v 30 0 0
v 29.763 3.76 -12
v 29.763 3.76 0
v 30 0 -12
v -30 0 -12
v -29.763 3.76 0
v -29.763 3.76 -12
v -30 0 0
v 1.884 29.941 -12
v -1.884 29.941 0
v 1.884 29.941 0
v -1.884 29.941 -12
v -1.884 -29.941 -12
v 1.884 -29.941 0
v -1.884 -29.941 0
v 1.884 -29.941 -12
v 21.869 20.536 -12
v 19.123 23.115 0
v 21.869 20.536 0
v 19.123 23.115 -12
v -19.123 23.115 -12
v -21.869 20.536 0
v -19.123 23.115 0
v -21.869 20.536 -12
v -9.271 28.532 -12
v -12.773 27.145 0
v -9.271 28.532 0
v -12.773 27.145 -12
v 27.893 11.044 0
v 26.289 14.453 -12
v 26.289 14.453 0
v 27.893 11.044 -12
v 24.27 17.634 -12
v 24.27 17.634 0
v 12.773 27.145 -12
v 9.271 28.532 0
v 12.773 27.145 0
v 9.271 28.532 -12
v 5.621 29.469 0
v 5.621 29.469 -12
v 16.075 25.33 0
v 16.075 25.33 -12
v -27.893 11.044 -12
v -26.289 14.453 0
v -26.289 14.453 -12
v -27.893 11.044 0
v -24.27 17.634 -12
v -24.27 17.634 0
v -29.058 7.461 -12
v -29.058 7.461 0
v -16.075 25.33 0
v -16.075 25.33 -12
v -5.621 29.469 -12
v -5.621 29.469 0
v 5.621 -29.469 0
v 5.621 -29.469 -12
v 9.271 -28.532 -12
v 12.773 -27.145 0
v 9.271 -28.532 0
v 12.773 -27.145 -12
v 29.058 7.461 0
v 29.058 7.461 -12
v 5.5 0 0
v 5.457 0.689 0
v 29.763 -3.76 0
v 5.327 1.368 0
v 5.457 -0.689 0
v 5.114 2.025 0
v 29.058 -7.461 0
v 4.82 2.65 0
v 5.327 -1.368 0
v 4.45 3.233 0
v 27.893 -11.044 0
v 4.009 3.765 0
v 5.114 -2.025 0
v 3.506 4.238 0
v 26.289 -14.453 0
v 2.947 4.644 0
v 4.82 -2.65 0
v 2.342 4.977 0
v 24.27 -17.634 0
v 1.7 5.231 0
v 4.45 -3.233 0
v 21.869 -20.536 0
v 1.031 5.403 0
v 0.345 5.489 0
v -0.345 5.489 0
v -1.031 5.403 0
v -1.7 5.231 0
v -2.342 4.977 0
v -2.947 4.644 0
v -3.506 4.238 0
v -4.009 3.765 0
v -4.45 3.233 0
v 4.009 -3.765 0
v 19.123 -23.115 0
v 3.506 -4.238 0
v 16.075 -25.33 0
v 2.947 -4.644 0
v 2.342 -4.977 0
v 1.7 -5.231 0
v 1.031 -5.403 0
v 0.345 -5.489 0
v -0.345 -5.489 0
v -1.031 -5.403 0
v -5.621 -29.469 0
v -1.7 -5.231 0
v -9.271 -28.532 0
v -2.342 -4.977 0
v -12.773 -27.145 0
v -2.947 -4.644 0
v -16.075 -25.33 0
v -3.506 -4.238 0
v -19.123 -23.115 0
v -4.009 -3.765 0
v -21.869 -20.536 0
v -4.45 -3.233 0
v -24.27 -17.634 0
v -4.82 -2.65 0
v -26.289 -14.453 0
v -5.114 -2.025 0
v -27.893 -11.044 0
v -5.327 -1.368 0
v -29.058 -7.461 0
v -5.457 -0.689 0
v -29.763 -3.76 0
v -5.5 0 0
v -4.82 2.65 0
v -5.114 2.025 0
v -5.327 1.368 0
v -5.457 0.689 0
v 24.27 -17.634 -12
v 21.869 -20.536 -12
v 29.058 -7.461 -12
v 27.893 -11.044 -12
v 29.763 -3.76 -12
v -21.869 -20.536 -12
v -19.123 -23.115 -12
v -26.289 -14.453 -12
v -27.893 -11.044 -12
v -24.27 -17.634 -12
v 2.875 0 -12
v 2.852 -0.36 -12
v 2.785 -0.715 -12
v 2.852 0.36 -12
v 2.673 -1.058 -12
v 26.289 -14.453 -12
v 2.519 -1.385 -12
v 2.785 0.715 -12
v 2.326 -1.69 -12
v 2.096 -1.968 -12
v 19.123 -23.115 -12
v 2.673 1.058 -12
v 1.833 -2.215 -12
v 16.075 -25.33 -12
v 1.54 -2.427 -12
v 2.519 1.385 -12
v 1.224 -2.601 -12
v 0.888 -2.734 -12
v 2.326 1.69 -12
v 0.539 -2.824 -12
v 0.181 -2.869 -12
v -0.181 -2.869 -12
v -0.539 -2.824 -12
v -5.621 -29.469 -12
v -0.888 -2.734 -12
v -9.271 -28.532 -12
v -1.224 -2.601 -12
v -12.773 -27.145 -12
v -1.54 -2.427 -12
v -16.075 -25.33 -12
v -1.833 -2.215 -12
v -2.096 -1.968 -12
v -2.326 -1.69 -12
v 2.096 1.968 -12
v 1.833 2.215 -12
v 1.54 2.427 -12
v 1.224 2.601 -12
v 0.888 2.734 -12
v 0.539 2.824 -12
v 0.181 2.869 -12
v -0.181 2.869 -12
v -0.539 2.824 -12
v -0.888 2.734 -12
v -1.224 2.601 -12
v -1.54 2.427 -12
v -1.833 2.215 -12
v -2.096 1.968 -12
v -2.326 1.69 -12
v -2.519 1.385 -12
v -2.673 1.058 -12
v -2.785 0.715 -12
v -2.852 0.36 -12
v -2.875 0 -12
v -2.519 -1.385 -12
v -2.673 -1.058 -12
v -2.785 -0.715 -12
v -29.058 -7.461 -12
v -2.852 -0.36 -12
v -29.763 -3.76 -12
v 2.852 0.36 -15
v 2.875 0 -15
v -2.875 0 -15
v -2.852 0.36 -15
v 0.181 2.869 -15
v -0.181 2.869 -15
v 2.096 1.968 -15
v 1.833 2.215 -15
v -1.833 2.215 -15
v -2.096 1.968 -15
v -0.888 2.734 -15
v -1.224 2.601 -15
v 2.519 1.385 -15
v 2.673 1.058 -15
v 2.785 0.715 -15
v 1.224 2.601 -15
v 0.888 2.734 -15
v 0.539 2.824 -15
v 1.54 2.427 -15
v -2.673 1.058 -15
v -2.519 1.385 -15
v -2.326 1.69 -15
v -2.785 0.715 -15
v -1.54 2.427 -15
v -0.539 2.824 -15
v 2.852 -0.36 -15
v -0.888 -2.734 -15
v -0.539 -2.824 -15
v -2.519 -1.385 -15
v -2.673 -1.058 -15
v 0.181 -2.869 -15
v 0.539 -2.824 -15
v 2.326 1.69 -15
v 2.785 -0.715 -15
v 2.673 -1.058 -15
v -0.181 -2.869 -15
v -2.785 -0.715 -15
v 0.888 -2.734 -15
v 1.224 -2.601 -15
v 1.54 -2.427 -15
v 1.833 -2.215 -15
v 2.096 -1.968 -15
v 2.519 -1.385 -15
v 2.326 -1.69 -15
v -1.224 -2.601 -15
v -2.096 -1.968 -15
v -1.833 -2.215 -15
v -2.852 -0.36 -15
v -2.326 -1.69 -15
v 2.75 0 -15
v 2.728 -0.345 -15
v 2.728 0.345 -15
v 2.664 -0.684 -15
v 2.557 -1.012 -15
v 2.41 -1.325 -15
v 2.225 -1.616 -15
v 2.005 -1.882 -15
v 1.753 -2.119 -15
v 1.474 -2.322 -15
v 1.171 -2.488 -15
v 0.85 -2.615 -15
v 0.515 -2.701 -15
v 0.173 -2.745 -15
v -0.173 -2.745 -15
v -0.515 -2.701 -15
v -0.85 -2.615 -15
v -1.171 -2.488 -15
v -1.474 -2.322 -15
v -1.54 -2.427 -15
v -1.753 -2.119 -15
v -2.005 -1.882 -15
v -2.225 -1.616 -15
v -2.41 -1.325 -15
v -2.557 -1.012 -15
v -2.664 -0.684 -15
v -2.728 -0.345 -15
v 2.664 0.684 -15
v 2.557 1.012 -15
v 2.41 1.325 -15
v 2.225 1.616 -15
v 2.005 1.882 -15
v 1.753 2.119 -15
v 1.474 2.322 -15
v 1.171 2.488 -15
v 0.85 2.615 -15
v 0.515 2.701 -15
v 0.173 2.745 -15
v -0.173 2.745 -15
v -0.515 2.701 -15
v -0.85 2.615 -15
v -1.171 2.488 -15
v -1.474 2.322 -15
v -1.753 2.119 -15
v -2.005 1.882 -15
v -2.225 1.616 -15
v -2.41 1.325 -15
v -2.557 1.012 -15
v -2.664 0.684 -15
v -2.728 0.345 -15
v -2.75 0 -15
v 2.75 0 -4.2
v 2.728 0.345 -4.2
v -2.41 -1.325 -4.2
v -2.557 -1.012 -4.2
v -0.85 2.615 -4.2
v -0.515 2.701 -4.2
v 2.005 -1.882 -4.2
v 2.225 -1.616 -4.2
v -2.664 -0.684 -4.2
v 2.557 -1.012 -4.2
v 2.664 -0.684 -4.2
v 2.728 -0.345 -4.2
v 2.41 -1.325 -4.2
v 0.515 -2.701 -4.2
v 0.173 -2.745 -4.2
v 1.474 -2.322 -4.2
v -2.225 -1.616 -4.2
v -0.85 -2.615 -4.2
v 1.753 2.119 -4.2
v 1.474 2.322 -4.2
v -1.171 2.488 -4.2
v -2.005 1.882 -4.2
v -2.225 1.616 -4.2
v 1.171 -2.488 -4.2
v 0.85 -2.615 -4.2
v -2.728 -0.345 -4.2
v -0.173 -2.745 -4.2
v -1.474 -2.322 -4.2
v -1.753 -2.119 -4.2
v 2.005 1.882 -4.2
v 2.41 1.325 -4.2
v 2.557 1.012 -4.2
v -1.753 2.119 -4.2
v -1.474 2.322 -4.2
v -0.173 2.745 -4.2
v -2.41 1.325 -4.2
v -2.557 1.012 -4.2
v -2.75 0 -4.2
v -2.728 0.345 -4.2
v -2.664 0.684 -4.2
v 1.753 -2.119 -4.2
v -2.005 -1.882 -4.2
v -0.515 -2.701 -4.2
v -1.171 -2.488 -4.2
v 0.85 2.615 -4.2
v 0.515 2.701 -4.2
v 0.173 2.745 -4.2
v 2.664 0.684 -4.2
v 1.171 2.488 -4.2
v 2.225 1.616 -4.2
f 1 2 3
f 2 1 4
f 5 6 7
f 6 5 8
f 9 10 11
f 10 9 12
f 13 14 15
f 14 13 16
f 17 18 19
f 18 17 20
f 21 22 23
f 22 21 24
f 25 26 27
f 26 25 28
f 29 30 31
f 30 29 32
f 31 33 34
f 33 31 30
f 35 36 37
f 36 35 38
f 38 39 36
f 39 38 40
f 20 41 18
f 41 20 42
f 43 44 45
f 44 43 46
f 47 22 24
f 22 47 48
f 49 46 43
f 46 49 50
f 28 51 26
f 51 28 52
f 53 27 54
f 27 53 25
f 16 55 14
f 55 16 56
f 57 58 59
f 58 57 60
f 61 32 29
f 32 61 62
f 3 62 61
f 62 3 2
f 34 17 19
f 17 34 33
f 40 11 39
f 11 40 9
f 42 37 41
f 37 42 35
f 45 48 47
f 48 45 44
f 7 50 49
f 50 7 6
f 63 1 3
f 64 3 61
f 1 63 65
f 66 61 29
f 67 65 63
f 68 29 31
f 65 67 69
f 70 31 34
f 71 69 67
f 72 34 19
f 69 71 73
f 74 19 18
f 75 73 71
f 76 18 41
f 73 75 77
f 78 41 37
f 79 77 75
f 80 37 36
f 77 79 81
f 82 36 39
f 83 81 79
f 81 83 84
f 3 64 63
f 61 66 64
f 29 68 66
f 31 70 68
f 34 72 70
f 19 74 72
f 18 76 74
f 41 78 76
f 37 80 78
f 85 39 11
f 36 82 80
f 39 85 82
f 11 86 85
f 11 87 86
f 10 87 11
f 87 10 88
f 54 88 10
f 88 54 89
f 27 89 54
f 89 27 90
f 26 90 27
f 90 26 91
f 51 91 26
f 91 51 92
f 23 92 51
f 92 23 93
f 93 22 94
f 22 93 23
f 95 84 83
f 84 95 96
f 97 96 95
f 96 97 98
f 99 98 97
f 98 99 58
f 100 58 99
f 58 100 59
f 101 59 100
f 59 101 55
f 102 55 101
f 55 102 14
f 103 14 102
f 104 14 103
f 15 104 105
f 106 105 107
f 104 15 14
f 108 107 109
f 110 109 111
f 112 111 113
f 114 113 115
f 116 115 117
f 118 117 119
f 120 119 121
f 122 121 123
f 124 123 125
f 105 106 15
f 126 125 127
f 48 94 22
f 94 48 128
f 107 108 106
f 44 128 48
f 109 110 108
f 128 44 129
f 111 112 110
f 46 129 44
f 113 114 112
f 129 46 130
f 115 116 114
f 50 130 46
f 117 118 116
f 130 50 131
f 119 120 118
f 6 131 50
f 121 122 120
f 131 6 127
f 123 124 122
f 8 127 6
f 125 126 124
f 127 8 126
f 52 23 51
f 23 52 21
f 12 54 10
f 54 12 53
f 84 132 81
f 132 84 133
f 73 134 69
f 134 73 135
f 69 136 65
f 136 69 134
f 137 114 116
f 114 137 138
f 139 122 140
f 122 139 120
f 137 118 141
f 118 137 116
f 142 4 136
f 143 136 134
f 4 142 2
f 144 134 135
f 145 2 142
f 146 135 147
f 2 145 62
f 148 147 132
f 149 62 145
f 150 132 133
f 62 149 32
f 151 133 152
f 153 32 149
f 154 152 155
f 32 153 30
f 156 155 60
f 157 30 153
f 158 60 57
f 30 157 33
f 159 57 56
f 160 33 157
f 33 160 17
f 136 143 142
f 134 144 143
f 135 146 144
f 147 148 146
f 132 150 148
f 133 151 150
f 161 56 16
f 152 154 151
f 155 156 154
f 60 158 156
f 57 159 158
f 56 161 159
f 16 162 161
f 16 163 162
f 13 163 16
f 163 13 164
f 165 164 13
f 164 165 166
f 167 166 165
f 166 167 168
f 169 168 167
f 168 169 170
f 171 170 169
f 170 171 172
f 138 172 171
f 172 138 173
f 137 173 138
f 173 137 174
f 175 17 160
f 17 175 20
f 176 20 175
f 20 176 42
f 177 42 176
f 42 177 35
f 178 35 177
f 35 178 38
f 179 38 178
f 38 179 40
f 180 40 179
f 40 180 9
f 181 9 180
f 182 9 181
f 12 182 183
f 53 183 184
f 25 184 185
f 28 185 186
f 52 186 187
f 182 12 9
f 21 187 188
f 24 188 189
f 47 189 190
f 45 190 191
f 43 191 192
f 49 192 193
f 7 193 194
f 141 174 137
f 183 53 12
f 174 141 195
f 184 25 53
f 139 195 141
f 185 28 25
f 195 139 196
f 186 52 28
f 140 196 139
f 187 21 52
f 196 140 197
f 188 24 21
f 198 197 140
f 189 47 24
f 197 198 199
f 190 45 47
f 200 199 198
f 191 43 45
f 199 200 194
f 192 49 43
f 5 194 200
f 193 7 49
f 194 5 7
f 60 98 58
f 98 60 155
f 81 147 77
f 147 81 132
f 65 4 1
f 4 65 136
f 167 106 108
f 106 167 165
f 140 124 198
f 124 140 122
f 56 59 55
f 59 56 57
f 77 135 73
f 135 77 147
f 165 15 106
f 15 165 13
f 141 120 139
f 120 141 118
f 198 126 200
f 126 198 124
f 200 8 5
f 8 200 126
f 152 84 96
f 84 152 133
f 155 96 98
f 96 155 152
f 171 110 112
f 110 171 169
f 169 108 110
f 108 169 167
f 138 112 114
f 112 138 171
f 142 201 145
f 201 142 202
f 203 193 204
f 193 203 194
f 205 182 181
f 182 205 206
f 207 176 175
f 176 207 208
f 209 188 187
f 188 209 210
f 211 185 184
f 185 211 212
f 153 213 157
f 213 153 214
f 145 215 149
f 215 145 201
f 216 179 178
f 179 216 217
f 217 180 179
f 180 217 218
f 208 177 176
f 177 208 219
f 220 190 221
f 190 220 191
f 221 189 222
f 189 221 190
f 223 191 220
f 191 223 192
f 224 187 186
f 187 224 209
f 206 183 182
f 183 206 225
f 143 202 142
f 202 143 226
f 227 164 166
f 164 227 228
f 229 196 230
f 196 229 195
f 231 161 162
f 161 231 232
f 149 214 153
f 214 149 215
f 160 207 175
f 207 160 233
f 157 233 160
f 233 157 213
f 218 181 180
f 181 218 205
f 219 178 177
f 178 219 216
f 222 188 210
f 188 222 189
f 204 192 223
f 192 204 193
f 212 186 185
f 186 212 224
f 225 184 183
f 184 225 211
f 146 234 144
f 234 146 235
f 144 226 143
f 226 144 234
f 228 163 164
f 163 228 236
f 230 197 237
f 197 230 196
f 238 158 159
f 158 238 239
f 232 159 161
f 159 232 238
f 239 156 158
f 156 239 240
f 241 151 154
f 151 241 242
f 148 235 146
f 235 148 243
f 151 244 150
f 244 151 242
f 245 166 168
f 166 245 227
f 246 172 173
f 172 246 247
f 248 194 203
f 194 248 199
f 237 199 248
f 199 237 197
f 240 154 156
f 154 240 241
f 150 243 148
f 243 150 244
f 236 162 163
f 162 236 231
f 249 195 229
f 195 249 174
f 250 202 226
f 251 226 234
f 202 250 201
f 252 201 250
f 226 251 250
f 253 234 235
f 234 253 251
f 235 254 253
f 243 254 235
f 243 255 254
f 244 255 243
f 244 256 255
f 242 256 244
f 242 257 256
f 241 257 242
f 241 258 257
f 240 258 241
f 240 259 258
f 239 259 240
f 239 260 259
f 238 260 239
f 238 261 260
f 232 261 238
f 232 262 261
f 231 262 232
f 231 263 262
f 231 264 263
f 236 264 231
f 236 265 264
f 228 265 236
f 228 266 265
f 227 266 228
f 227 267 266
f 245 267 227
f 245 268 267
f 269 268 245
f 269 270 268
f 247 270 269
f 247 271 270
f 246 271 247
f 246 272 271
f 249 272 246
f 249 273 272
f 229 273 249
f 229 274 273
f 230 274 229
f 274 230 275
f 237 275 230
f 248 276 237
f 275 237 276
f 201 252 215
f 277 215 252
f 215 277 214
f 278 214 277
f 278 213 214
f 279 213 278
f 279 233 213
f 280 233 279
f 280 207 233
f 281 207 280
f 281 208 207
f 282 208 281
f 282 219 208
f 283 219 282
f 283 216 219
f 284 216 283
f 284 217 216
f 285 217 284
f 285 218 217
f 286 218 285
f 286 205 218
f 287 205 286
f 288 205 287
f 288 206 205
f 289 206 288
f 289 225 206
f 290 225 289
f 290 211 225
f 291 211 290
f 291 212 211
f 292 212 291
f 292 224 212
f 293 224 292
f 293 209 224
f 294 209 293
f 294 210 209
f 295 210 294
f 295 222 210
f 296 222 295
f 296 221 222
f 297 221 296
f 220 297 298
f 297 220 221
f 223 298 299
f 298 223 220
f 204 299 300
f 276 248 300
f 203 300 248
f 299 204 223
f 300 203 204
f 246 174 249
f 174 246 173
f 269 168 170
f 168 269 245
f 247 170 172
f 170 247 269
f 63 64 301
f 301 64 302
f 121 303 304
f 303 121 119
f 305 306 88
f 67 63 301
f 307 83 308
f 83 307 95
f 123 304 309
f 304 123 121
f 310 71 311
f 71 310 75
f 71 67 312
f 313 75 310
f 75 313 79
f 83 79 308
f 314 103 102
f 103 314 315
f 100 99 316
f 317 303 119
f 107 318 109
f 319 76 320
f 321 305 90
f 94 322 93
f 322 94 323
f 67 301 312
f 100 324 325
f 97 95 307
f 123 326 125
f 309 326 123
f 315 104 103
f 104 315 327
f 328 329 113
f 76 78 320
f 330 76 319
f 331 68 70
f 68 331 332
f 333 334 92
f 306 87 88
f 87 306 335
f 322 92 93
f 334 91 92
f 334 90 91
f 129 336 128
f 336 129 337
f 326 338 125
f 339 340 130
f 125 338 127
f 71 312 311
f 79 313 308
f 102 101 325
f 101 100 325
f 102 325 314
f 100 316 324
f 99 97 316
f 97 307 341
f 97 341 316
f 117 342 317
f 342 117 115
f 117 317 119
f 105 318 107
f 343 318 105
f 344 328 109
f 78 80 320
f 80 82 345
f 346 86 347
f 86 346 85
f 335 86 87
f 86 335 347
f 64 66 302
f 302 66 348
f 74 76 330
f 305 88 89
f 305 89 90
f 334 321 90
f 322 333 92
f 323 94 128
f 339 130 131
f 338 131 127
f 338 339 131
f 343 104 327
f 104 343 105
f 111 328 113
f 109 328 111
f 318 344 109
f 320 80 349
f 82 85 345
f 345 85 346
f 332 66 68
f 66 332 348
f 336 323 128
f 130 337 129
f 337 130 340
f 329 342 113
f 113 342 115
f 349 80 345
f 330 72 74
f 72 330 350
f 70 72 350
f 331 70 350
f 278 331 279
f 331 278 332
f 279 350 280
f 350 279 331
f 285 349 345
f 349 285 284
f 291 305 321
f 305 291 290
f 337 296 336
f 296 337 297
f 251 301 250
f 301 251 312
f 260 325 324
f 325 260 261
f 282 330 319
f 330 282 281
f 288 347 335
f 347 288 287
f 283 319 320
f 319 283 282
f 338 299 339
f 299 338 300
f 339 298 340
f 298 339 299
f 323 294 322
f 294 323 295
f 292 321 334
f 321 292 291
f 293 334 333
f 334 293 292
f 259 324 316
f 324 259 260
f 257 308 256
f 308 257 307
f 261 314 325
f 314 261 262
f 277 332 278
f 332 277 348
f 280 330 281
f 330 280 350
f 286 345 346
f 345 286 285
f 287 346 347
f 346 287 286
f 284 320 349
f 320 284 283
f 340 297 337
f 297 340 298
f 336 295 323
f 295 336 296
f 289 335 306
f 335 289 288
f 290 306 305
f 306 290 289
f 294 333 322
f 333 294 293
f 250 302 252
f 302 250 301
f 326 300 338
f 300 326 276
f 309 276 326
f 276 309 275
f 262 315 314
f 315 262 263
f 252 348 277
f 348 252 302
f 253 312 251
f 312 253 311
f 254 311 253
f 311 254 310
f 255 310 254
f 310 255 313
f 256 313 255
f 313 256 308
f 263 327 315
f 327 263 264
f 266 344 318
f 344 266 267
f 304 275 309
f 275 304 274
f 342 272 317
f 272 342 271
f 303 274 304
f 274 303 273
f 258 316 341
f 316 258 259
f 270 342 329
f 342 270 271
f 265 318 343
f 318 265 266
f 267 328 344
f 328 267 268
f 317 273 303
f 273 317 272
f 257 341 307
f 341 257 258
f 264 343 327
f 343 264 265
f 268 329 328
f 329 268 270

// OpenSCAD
$fn = 50;


difference() {
	union() {
		translate(v = [0, 0, -12.0000000000]) {
			cylinder(h = 12, r = 30.0000000000);
		}
		translate(v = [0, 0, -15.0000000000]) {
			cylinder(h = 15, r = 2.8750000000);
		}
	}
	union() {
		translate(v = [0, 0, 0]) {
			rotate(a = [0, 0, 0]) {
				difference() {
					union() {
						translate(v = [0, 0, -15.0000000000]) {
							cylinder(h = 15, r = 2.2500000000);
						}
						translate(v = [0, 0, -4.2000000000]) {
							cylinder(h = 4.2000000000, r1 = 2.7500000000, r2 = 5.5000000000);
						}
						translate(v = [0, 0, -15.0000000000]) {
							cylinder(h = 15, r = 2.7500000000);
						}
						translate(v = [0, 0, -15.0000000000]) {
							cylinder(h = 15, r = 2.2500000000);
						}
					}
					union();
				}
			}
		}
	}
}
